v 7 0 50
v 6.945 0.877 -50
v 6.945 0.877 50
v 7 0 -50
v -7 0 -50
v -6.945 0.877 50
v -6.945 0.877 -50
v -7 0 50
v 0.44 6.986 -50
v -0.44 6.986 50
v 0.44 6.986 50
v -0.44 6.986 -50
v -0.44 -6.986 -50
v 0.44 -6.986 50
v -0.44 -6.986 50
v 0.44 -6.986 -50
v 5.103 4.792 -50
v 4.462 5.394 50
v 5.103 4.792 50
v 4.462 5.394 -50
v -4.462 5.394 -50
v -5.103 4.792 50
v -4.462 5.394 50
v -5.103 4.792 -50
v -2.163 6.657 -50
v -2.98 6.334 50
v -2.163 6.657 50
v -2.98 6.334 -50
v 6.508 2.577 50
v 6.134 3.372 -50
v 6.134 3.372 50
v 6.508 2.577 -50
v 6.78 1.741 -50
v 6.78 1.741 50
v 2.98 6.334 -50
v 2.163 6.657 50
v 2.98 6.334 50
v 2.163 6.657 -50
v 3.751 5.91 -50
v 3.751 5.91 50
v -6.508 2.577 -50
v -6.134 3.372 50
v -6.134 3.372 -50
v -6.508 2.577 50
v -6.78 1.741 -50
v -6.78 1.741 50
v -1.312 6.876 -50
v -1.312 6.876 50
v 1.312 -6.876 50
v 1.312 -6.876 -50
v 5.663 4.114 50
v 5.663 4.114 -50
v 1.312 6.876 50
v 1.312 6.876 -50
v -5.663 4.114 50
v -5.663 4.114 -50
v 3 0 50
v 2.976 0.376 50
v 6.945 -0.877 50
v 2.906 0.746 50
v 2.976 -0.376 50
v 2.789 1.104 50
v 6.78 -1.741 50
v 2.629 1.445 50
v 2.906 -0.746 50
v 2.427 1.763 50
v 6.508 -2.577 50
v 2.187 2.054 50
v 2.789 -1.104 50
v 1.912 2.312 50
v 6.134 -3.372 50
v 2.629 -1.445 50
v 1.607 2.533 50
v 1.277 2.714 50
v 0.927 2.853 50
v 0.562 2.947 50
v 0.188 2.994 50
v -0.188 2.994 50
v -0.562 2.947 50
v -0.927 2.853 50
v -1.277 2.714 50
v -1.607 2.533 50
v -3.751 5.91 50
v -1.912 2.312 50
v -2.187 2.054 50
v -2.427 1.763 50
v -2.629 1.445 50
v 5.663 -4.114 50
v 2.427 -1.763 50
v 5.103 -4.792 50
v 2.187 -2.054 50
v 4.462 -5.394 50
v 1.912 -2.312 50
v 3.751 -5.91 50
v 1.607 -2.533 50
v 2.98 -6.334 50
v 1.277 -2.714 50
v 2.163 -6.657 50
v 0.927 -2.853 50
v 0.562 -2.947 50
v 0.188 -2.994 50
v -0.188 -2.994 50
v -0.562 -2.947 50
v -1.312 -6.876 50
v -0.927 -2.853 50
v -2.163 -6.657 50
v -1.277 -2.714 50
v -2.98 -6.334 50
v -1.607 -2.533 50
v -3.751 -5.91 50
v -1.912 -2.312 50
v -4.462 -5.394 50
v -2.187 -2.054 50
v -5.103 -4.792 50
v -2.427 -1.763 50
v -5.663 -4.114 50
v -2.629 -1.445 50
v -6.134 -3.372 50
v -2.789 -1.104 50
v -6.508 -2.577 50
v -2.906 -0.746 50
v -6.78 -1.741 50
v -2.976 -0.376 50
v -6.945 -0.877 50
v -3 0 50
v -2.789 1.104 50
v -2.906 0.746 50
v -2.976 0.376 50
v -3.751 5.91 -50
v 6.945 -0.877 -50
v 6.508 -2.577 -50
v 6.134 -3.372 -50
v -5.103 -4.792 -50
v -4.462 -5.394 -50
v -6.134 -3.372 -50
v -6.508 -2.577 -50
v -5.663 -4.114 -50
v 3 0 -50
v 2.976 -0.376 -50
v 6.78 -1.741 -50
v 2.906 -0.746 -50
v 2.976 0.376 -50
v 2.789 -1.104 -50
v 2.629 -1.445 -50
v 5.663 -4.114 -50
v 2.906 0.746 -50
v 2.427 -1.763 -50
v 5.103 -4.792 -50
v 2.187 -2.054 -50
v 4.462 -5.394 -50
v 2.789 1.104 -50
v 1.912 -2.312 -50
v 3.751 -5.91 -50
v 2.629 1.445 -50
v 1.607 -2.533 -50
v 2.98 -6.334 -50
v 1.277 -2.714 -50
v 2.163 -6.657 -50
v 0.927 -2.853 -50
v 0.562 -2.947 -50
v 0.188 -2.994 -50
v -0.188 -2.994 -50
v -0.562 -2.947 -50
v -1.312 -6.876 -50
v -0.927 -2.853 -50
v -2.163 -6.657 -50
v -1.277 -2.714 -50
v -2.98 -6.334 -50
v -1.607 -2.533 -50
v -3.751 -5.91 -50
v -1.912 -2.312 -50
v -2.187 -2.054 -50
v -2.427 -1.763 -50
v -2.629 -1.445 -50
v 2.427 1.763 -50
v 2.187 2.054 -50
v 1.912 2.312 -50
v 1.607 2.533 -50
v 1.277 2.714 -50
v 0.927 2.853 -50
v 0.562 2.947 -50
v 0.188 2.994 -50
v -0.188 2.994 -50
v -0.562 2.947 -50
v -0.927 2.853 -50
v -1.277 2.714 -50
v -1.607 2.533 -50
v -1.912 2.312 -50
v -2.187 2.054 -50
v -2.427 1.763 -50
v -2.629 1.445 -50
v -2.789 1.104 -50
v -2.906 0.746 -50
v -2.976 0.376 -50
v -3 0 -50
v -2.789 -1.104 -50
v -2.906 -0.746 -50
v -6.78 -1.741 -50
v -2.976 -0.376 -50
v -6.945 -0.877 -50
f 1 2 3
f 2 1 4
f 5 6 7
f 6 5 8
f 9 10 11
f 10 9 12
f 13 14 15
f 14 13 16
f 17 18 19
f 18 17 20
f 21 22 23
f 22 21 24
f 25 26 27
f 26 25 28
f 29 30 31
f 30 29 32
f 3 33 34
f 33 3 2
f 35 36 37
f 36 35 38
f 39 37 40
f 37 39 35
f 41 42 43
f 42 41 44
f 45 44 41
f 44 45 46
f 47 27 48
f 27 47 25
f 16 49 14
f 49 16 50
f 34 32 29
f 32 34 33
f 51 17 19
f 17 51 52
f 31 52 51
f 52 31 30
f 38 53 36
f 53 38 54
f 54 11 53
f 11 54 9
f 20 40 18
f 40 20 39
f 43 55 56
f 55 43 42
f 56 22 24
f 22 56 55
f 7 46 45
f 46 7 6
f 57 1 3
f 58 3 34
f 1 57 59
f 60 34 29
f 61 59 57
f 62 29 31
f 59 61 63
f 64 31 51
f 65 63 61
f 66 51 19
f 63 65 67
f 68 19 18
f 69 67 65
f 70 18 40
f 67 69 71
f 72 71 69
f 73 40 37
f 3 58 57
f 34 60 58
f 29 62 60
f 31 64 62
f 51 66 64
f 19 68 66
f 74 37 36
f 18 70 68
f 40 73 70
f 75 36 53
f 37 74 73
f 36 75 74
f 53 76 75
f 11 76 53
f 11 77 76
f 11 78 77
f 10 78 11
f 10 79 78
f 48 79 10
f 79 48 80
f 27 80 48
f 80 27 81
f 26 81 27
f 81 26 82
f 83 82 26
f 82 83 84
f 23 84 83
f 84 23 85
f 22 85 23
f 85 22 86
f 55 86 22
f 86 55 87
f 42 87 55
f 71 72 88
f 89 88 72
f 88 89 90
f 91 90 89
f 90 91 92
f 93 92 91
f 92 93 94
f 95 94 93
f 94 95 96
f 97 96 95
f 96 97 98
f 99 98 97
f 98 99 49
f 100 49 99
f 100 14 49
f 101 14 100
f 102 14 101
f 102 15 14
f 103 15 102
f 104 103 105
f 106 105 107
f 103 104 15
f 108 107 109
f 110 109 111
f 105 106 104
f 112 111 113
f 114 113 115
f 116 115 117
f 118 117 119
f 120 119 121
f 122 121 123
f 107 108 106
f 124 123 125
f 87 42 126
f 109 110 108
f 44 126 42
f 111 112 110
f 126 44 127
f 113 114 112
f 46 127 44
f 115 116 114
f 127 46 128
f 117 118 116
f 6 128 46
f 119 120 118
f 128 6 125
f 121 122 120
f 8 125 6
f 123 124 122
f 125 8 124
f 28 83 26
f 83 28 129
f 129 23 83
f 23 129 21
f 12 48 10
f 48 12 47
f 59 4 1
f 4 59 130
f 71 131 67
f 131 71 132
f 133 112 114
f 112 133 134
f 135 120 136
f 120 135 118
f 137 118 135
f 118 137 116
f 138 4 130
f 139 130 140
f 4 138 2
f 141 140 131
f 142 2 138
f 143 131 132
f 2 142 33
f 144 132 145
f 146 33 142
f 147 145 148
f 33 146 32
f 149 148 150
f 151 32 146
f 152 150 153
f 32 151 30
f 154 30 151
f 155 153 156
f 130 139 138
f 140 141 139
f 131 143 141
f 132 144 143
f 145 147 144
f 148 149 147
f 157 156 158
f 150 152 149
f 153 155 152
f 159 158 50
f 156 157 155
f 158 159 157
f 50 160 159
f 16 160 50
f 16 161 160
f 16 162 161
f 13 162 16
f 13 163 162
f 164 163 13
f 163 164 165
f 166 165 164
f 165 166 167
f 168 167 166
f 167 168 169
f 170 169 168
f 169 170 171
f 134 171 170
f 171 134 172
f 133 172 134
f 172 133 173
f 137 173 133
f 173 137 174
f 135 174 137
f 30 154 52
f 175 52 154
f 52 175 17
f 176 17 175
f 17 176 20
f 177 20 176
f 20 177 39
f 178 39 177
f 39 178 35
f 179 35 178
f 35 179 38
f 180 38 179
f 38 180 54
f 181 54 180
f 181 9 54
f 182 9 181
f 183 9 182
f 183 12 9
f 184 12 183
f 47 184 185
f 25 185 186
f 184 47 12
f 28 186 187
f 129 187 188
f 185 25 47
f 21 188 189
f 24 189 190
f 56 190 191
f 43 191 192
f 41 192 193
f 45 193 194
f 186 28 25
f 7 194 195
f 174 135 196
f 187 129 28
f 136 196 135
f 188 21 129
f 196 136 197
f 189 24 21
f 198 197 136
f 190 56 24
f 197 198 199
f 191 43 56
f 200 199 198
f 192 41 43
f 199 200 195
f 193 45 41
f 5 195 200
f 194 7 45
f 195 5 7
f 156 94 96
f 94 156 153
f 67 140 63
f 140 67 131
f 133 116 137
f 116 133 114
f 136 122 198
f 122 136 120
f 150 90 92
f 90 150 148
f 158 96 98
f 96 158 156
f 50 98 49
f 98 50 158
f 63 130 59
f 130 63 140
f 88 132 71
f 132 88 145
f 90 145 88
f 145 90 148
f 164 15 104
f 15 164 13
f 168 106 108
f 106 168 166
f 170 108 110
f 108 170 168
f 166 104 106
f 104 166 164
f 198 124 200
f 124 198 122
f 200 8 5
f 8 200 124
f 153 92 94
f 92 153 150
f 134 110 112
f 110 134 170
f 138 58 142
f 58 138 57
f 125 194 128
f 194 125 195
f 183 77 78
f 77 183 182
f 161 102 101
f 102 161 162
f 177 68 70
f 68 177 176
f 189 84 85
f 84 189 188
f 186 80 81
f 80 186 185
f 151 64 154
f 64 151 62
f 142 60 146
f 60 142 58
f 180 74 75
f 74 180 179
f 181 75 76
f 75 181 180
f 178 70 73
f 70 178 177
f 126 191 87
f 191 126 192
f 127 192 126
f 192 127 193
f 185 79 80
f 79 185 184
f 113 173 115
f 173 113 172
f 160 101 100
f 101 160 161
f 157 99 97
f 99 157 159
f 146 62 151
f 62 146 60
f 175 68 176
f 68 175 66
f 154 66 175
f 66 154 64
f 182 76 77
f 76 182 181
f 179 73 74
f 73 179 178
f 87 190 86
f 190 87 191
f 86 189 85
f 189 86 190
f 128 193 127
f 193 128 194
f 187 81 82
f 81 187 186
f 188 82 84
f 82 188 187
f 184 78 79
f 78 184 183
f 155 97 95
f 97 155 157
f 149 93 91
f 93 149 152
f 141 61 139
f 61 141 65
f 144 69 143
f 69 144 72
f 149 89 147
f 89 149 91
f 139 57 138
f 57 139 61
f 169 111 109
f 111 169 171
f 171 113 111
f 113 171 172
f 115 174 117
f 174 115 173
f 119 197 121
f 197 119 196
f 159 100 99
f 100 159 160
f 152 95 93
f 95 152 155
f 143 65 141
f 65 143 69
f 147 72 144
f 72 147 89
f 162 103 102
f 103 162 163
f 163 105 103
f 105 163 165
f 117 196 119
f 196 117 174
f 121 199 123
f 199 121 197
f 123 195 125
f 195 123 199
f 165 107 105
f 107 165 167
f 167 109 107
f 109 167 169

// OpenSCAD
$fn = 50;


difference() {
	union() {
		translate(v = [0, 0, -50.0000000000]) {
			cylinder(h = 100, r = 7.0000000000);
		}
	}
	union() {
		translate(v = [0, 0, -100.0000000000]) {
			cylinder(h = 200, r = 3.0000000000);
		}
	}
}
